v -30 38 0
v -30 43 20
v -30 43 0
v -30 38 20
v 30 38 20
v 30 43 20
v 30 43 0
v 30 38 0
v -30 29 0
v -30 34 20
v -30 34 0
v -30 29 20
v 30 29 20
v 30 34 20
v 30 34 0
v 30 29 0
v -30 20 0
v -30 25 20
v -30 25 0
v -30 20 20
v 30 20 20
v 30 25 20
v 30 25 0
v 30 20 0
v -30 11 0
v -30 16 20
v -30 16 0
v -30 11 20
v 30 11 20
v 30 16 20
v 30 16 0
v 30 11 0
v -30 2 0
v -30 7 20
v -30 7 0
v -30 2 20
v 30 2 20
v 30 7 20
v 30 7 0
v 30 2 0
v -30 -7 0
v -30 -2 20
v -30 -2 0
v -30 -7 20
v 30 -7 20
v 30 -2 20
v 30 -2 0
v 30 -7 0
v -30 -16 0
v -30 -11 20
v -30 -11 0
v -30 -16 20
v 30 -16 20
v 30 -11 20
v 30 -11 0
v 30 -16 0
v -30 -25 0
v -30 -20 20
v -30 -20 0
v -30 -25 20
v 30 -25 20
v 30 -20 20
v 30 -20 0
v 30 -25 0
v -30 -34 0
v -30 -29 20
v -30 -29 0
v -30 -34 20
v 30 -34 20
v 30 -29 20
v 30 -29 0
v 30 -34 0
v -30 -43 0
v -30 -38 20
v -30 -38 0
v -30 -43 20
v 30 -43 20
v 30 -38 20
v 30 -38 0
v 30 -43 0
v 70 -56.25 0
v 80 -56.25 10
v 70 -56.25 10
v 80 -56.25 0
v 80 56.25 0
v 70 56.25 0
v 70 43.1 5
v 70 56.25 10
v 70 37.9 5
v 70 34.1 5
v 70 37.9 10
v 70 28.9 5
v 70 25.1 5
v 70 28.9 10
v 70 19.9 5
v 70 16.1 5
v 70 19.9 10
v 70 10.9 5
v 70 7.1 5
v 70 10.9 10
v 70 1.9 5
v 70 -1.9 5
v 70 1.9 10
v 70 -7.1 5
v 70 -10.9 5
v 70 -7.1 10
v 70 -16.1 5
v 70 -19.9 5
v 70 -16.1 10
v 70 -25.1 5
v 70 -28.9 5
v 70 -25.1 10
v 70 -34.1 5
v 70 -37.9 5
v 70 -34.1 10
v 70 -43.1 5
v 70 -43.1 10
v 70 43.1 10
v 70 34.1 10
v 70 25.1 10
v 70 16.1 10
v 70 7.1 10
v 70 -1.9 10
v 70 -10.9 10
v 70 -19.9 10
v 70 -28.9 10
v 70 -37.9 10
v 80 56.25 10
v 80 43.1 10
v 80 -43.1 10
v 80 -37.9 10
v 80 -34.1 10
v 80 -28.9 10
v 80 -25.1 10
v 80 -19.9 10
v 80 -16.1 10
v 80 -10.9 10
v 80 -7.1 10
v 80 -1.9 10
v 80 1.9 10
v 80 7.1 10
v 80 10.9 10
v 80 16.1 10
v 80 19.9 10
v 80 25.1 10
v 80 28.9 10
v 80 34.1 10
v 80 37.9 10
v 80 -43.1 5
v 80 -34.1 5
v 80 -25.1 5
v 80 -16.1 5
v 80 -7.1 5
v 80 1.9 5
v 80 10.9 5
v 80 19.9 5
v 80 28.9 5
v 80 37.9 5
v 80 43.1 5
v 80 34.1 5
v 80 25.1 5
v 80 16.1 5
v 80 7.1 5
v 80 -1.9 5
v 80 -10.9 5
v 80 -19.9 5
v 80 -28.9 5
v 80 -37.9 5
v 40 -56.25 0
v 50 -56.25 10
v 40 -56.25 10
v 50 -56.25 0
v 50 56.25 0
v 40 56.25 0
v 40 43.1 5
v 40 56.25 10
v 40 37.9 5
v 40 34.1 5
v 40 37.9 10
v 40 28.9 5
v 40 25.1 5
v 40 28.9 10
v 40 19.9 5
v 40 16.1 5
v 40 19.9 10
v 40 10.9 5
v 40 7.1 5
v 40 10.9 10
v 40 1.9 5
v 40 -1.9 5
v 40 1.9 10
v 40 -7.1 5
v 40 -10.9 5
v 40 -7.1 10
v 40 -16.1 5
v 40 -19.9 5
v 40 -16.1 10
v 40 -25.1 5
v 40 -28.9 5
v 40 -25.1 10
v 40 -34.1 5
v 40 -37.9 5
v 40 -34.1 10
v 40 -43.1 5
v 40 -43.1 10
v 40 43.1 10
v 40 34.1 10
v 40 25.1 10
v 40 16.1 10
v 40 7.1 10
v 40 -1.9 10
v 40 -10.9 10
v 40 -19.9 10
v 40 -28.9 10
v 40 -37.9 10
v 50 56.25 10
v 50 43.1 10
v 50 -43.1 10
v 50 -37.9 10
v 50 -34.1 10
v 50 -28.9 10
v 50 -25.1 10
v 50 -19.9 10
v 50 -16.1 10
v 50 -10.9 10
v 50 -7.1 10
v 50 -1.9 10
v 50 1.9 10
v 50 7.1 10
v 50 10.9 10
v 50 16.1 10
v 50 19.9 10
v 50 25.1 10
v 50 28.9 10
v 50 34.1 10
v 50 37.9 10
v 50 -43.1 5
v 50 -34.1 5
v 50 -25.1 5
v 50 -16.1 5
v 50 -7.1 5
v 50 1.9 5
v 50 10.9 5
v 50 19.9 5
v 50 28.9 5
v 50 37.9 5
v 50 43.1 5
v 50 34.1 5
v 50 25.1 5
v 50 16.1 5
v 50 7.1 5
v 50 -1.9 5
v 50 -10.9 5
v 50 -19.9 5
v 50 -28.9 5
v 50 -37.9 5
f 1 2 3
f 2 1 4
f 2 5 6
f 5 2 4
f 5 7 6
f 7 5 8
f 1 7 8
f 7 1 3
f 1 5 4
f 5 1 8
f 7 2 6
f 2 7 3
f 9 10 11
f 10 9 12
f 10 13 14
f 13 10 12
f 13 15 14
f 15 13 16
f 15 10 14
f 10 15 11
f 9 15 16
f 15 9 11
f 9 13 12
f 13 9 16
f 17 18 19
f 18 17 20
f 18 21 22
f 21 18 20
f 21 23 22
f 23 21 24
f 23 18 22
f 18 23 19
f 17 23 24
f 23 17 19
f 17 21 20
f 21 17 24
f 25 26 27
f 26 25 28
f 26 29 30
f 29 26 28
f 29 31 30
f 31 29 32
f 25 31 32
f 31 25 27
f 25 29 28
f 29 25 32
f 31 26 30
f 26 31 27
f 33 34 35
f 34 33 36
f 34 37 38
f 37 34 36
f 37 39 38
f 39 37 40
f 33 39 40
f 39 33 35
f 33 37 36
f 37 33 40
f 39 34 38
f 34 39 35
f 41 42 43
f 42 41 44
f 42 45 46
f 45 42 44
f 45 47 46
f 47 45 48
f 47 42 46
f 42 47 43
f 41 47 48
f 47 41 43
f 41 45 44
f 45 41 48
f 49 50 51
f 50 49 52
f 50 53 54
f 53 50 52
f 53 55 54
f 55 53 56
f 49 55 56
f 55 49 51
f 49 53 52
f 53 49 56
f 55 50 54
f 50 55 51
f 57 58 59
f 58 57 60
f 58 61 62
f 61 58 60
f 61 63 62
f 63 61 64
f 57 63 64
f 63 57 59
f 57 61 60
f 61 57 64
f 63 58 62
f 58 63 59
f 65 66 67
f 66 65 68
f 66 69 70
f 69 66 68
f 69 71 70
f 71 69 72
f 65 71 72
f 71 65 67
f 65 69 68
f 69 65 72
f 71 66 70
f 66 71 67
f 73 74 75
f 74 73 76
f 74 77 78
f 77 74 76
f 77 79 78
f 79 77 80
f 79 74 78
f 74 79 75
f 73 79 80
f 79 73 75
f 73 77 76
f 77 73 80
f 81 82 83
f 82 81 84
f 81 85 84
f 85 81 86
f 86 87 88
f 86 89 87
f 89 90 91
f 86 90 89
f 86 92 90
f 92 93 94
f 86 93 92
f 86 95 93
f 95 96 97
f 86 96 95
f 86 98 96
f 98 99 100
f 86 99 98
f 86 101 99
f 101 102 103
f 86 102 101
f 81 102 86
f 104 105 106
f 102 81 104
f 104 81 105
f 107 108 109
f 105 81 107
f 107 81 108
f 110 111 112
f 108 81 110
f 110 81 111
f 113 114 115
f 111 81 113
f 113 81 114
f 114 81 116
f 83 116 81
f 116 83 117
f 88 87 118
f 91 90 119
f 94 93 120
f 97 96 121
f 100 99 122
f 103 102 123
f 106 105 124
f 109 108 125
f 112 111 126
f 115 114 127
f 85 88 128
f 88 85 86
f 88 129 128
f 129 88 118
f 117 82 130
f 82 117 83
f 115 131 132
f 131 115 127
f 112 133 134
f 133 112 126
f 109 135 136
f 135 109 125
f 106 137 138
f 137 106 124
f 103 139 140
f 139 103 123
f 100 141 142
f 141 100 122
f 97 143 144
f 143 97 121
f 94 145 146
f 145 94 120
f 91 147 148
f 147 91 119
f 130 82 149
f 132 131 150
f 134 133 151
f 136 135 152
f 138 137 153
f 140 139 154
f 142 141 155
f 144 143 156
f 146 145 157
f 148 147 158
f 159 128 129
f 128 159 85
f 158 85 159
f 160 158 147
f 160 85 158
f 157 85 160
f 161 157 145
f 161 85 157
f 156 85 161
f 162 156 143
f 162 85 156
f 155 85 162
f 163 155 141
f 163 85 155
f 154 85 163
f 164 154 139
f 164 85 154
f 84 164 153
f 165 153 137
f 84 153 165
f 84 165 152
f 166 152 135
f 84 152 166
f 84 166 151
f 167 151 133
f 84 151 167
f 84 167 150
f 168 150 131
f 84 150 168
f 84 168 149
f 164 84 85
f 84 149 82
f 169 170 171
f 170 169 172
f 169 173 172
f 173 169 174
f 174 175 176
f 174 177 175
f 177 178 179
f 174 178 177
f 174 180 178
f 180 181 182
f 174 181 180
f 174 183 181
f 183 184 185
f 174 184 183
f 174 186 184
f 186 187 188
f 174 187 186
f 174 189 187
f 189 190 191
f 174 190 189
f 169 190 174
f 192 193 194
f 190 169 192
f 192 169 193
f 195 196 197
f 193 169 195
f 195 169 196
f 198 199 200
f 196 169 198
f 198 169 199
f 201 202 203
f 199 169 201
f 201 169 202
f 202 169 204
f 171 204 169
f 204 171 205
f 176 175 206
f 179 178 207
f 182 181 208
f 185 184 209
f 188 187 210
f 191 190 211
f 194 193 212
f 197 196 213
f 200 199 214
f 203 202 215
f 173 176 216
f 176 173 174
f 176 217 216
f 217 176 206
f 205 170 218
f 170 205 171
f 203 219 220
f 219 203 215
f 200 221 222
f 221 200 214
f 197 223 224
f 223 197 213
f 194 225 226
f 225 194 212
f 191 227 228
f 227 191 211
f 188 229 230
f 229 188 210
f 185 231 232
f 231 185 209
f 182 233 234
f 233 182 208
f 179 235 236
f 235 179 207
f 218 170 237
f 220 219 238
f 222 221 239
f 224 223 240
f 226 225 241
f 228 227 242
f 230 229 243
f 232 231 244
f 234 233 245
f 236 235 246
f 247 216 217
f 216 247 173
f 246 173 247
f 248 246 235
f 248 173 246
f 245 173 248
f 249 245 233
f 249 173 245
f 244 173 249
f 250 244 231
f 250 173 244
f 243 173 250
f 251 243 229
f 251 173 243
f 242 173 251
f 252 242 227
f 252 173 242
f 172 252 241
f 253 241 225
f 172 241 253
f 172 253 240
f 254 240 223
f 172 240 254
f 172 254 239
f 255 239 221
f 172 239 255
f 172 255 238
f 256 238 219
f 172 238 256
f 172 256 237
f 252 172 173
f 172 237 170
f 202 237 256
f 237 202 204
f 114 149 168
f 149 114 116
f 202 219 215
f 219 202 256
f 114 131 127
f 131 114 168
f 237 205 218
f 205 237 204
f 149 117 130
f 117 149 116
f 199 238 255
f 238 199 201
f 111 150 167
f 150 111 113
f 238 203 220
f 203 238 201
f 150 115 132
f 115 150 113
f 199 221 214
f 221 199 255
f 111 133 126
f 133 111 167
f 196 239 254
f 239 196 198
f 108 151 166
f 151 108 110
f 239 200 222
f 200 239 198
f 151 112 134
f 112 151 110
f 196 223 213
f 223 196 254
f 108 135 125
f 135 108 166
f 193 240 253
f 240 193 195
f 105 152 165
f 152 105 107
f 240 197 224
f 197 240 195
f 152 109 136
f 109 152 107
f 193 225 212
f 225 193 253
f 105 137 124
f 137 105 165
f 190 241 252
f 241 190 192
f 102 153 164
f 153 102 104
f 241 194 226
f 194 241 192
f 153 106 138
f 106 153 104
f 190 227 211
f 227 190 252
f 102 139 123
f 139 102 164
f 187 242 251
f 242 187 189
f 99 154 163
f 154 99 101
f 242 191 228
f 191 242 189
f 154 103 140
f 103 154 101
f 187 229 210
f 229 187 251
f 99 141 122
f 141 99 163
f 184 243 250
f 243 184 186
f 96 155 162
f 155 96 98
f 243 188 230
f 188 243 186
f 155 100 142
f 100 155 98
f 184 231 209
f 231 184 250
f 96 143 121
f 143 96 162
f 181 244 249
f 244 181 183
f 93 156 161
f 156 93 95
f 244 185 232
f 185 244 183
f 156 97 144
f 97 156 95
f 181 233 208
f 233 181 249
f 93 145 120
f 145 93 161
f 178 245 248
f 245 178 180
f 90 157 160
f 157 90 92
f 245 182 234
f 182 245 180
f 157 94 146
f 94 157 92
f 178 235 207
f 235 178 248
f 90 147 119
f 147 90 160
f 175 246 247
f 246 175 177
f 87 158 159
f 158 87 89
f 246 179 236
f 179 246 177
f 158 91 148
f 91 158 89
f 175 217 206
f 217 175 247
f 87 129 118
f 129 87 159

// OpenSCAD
// Small wall for 4 well plate lid to make arena for OMR
// Created by Juan Angueyra (angueyra@nih.gov)
// November 2019

// in mm
bottle_h = 10;
bottle_l = 75;
bottle_w = 100;
bottle_wall = 1.5;

lane_l = 60;
lane_w = 5;
lane_h = 20;

indent = lane_h/4;

// main call
3Dprintflag=1;
bottle_tr = 3Dprintflag ? [0,0,0] : [0,0,0];
bottle_rot = 3Dprintflag ? [0,0,0] : [0,0,0];

crossbar_tr = 3Dprintflag ? [bottle_w/2+10,0,(lane_h+bottle_h-indent)] : [0,0,0];
crossbar_rot = 3Dprintflag ? [-180,0,0] : [0,0,0];


// translate(bottle_tr){rotate(bottle_rot){bottle();}}
translate(bottle_tr){rotate(bottle_rot){lanes();}}
translate(crossbar_tr){rotate(crossbar_rot){crossbars();}}


// modules
module bottle() {
	difference() {
		cube(size=[bottle_l, bottle_w, bottle_h], center=true);
		translate([0, 0, bottle_wall]) {
			cube(size=[bottle_l-bottle_wall, bottle_w-bottle_wall, bottle_h*1.2], center=true);
		}
	}
}

module lane() {
	translate([0, 0, lane_h/2]) {cube(size=[lane_l, lane_w, lane_h], center=true);}
}

module lane_cut() {
	translate([0, 0, lane_h/2]) {cube(size=[lane_l, lane_w+.2, lane_h], center=true);}
}

module lanes(){
	union() {
		translate([0,40.5,0]){rotate(bottle_rot){lane();}}
		translate([0,31.5,0]){rotate(bottle_rot){lane();}}
		translate([0,22.5,0]){rotate(bottle_rot){lane();}}
		translate([0,13.5,0]){rotate(bottle_rot){lane();}}
		translate([0,4.5,0]){rotate(bottle_rot){lane();}}
		translate([0,-4.5,0]){rotate(bottle_rot){lane();}}
		translate([0,-13.5,0]){rotate(bottle_rot){lane();}}
		translate([0,-22.5,0]){rotate(bottle_rot){lane();}}
		translate([0,-31.5,0]){rotate(bottle_rot){lane();}}
		translate([0,-40.5,0]){rotate(bottle_rot){lane();}}
	}
}

module crossbars(){
	difference() {
		union() {
				translate([lane_l/4,0,lane_h+bottle_h/2-indent]){rotate(90,0,0){cube(size=[bottle_l*1.5, lane_w*2, bottle_h], center=true);}}
				translate([-lane_l/4,0,lane_h+bottle_h/2-indent]){rotate(90,0,0){cube(size=[bottle_l*1.5, lane_w*2, bottle_h], center=true);}}
			}
		union() {
			translate([0,40.5,0]){rotate(bottle_rot){lane_cut();}}
			translate([0,31.5,0]){rotate(bottle_rot){lane_cut();}}
			translate([0,22.5,0]){rotate(bottle_rot){lane_cut();}}
			translate([0,13.5,0]){rotate(bottle_rot){lane_cut();}}
			translate([0,4.5,0]){rotate(bottle_rot){lane_cut();}}
			translate([0,-4.5,0]){rotate(bottle_rot){lane_cut();}}
			translate([0,-13.5,0]){rotate(bottle_rot){lane_cut();}}
			translate([0,-22.5,0]){rotate(bottle_rot){lane_cut();}}
			translate([0,-31.5,0]){rotate(bottle_rot){lane_cut();}}
			translate([0,-40.5,0]){rotate(bottle_rot){lane_cut();}}
		}
	}
	
}

module trapezoid(width_base, width_top,height,thickness) {
	translate([height/2,-width_base/2,thickness/2]) {rotate([0,0,90]) {
  		linear_extrude(height = thickness) polygon(points=[[0,0],[width_base,0],[width_base-(width_base-width_top)/2,height],[(width_base-width_top)/2,height]], paths=[[0,1,2,3]]);  
	}}
}
